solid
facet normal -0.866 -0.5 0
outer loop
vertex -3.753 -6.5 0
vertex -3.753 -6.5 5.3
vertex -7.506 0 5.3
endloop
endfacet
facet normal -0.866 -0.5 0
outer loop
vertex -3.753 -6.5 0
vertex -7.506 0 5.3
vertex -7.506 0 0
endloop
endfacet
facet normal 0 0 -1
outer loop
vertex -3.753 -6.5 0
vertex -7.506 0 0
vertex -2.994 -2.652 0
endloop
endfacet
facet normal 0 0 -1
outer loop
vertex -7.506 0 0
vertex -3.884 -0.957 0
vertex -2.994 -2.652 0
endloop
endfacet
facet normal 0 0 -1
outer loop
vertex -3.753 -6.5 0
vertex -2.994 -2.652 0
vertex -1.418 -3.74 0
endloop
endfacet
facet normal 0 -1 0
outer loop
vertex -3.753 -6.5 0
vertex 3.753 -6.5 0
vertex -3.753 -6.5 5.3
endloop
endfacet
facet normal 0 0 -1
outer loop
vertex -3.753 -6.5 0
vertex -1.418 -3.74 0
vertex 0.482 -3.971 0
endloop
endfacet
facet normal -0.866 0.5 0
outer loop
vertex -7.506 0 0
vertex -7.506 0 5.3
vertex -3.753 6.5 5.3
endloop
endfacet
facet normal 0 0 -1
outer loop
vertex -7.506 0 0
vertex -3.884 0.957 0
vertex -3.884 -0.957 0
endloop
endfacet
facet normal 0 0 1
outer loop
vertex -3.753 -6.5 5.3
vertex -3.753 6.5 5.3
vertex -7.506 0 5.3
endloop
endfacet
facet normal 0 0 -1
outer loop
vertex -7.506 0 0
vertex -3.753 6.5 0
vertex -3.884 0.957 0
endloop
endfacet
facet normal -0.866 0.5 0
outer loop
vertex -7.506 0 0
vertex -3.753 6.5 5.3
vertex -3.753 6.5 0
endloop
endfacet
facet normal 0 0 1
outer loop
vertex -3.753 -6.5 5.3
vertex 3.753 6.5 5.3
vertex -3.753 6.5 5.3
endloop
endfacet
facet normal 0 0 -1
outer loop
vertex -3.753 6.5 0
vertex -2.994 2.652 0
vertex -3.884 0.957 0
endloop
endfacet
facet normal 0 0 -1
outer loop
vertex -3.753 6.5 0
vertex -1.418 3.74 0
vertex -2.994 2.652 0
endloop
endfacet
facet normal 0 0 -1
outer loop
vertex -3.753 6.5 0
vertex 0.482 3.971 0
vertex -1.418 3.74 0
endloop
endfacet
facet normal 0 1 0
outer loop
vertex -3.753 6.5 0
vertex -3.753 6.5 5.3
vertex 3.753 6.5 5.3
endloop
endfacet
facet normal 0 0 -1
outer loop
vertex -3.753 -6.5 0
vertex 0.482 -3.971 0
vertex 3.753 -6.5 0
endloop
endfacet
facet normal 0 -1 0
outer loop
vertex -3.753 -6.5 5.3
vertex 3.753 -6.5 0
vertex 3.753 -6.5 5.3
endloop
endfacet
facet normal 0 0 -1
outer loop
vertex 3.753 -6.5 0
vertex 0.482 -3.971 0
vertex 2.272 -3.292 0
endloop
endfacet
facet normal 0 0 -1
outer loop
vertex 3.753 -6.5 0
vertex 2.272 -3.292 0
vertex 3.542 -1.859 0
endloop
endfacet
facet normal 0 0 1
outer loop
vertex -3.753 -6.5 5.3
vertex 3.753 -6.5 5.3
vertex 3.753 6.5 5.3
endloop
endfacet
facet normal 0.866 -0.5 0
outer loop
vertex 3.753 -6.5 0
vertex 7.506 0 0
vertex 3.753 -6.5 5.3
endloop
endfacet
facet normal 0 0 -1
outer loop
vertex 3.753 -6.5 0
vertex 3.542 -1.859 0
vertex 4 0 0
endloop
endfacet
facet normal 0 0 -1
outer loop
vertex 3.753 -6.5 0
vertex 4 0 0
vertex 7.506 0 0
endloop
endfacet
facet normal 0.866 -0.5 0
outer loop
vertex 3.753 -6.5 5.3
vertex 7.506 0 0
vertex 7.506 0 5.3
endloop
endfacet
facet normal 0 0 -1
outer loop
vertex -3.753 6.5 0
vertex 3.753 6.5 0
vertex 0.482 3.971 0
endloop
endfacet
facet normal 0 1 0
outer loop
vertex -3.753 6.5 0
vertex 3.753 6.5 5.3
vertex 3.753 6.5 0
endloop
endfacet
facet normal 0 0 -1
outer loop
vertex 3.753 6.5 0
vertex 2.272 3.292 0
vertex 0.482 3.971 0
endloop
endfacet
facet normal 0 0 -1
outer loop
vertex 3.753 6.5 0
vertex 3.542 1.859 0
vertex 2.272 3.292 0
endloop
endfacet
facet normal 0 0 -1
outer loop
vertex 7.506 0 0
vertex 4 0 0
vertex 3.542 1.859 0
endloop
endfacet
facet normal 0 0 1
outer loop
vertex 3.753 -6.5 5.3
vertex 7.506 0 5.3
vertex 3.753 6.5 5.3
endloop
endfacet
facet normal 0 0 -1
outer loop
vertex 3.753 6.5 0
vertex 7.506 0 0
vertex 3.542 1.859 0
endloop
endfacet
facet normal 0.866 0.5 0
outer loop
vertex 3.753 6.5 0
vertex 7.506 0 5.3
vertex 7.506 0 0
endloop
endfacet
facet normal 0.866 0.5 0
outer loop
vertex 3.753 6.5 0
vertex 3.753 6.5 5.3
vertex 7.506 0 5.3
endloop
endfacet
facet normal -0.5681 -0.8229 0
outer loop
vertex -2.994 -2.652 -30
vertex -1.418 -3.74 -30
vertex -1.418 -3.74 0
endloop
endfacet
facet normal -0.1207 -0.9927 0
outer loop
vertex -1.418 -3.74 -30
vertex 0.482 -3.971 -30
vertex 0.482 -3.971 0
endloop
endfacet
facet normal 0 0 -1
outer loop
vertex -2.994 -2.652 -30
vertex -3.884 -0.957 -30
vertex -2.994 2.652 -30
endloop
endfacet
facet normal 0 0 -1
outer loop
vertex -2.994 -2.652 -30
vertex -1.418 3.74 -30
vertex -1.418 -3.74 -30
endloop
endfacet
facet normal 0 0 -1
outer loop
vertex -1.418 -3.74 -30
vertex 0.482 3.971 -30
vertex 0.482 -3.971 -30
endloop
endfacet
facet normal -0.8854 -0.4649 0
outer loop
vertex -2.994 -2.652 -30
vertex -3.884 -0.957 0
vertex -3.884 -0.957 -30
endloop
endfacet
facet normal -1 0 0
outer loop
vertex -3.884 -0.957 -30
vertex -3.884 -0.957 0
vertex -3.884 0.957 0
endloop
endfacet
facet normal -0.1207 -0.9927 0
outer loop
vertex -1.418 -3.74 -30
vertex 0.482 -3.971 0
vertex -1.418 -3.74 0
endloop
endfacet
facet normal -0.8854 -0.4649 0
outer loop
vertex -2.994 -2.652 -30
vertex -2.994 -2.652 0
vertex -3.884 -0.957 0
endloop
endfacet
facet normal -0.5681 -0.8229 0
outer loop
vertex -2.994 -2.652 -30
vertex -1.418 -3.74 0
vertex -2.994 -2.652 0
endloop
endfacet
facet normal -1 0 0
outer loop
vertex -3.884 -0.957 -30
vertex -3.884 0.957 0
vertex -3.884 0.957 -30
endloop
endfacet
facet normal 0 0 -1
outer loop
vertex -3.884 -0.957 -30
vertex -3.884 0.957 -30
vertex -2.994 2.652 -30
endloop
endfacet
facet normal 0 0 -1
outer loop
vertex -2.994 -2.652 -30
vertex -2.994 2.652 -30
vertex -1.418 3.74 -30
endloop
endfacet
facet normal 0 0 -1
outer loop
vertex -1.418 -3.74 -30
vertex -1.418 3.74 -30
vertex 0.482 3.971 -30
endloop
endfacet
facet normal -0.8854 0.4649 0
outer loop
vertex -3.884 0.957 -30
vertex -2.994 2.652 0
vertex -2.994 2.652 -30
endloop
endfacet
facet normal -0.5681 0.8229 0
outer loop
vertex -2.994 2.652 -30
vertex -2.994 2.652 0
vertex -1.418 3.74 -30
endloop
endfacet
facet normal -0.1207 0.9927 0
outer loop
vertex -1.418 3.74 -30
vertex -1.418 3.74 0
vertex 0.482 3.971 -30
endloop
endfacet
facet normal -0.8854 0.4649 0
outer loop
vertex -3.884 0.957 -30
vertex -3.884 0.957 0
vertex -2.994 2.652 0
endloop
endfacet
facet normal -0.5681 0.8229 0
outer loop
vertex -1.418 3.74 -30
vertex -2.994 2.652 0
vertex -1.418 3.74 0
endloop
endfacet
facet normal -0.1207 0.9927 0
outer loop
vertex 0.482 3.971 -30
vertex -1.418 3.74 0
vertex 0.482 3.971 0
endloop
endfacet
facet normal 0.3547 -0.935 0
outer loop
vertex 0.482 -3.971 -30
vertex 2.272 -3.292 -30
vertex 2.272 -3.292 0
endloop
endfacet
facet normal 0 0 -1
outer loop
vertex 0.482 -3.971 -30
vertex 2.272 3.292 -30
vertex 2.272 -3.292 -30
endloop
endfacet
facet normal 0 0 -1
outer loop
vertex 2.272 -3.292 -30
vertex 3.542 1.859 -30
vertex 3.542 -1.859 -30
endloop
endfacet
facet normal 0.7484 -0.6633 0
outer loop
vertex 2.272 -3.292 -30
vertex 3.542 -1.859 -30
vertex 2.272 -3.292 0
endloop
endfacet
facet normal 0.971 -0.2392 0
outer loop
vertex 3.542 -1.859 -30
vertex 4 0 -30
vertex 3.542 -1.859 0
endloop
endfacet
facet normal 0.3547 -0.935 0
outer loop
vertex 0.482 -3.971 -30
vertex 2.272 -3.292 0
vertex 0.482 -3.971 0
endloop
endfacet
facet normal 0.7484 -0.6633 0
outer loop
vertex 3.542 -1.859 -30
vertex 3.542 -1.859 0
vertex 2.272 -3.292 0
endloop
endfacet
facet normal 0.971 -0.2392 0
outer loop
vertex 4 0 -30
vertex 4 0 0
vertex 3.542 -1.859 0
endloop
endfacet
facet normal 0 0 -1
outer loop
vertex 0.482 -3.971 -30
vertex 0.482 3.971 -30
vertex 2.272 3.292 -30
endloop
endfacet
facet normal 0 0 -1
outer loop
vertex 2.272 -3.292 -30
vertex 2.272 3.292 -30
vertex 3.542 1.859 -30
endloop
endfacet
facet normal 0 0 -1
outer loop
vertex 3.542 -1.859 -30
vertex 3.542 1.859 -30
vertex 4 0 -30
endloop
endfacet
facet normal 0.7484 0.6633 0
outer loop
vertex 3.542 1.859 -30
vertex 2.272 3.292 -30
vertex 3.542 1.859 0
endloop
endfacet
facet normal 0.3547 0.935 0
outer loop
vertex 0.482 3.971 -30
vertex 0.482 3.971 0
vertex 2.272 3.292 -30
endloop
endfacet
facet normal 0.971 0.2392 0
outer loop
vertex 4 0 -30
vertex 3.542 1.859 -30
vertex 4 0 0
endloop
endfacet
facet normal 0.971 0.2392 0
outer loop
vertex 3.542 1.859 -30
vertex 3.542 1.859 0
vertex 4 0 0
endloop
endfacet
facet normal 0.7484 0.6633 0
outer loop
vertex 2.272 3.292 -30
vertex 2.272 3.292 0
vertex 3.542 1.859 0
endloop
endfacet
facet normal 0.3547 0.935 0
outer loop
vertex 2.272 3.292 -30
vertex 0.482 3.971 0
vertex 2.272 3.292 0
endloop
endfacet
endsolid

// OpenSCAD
across_flats = 13;
head_height = 5.3;
shank_diameter = 8;
shank_length = 30;

head_radius = across_flats / sqrt(3);

union() {
    cylinder(h = head_height, r = head_radius, $fn = 6);
    translate([0, 0, -shank_length])
        cylinder(h = shank_length, d = shank_diameter);
}
